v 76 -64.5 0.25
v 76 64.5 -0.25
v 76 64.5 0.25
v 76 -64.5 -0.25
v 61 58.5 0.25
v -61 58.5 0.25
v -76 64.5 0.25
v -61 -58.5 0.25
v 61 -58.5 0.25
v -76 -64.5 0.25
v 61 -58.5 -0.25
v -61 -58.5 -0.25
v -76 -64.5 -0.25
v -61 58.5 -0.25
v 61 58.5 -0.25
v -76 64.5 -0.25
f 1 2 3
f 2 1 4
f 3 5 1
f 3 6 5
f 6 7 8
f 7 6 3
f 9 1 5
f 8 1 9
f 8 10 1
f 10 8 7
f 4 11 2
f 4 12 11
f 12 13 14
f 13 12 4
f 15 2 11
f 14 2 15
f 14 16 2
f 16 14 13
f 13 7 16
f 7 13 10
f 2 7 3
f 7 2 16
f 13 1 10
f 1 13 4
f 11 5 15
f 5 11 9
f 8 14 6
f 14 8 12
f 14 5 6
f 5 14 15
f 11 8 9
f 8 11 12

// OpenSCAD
// INDEX CARD FIFO

// Office Works Index Card measured with micrometer to be 0.255
// You may want to add some more tolerance to account for varying card thickness

/* [Card Spec] */
// 76 x 127mm (More like 126mm width when measured)
card_width = 126;
card_width_tol = 0.1;
card_height = 76;
card_height_tol = 0.1;
card_thickness = 0.25;
card_thickness_tol = 0.10;

/* [Command Strip] */

// Command Strip Width
commandstrip_w = 16/2; // 16mm width strip, but cut in half

// Command Strip Height (Not including the pull tab)
commandstrip_h = 50;

// Command Strip Thickness
commandstrip_thickness = 1.0;

/* [Wall Mount Spec] */
mount_slot_count = 2;

mount_width = commandstrip_w;

// Dev Note: We don't actually need to make the card form fittin. 
// The card will flex outward a bit... so we just need to make sure it large enough
// The flexing card will prevent cards upward from sliding downward anyway... so we are good
//mount_card_slide = card_thickness * 4 - 0.1;
mount_card_slide = 2.0;
mount_card_funnel = 3.0;
mount_card_grip_depth = 6;
mount_thickness = 0.6;

echo (mount_card_slide)

translate([0,0,1])
    %cube([card_height, card_width, card_thickness], center=true);

difference()
{
    guide_width = card_width+mount_card_grip_depth/2;
    cube([card_height*mount_slot_count, guide_width, 0.50], center=true);
    cube([card_height*mount_slot_count-30, guide_width-mount_card_grip_depth*2, 1], center=true);
}
